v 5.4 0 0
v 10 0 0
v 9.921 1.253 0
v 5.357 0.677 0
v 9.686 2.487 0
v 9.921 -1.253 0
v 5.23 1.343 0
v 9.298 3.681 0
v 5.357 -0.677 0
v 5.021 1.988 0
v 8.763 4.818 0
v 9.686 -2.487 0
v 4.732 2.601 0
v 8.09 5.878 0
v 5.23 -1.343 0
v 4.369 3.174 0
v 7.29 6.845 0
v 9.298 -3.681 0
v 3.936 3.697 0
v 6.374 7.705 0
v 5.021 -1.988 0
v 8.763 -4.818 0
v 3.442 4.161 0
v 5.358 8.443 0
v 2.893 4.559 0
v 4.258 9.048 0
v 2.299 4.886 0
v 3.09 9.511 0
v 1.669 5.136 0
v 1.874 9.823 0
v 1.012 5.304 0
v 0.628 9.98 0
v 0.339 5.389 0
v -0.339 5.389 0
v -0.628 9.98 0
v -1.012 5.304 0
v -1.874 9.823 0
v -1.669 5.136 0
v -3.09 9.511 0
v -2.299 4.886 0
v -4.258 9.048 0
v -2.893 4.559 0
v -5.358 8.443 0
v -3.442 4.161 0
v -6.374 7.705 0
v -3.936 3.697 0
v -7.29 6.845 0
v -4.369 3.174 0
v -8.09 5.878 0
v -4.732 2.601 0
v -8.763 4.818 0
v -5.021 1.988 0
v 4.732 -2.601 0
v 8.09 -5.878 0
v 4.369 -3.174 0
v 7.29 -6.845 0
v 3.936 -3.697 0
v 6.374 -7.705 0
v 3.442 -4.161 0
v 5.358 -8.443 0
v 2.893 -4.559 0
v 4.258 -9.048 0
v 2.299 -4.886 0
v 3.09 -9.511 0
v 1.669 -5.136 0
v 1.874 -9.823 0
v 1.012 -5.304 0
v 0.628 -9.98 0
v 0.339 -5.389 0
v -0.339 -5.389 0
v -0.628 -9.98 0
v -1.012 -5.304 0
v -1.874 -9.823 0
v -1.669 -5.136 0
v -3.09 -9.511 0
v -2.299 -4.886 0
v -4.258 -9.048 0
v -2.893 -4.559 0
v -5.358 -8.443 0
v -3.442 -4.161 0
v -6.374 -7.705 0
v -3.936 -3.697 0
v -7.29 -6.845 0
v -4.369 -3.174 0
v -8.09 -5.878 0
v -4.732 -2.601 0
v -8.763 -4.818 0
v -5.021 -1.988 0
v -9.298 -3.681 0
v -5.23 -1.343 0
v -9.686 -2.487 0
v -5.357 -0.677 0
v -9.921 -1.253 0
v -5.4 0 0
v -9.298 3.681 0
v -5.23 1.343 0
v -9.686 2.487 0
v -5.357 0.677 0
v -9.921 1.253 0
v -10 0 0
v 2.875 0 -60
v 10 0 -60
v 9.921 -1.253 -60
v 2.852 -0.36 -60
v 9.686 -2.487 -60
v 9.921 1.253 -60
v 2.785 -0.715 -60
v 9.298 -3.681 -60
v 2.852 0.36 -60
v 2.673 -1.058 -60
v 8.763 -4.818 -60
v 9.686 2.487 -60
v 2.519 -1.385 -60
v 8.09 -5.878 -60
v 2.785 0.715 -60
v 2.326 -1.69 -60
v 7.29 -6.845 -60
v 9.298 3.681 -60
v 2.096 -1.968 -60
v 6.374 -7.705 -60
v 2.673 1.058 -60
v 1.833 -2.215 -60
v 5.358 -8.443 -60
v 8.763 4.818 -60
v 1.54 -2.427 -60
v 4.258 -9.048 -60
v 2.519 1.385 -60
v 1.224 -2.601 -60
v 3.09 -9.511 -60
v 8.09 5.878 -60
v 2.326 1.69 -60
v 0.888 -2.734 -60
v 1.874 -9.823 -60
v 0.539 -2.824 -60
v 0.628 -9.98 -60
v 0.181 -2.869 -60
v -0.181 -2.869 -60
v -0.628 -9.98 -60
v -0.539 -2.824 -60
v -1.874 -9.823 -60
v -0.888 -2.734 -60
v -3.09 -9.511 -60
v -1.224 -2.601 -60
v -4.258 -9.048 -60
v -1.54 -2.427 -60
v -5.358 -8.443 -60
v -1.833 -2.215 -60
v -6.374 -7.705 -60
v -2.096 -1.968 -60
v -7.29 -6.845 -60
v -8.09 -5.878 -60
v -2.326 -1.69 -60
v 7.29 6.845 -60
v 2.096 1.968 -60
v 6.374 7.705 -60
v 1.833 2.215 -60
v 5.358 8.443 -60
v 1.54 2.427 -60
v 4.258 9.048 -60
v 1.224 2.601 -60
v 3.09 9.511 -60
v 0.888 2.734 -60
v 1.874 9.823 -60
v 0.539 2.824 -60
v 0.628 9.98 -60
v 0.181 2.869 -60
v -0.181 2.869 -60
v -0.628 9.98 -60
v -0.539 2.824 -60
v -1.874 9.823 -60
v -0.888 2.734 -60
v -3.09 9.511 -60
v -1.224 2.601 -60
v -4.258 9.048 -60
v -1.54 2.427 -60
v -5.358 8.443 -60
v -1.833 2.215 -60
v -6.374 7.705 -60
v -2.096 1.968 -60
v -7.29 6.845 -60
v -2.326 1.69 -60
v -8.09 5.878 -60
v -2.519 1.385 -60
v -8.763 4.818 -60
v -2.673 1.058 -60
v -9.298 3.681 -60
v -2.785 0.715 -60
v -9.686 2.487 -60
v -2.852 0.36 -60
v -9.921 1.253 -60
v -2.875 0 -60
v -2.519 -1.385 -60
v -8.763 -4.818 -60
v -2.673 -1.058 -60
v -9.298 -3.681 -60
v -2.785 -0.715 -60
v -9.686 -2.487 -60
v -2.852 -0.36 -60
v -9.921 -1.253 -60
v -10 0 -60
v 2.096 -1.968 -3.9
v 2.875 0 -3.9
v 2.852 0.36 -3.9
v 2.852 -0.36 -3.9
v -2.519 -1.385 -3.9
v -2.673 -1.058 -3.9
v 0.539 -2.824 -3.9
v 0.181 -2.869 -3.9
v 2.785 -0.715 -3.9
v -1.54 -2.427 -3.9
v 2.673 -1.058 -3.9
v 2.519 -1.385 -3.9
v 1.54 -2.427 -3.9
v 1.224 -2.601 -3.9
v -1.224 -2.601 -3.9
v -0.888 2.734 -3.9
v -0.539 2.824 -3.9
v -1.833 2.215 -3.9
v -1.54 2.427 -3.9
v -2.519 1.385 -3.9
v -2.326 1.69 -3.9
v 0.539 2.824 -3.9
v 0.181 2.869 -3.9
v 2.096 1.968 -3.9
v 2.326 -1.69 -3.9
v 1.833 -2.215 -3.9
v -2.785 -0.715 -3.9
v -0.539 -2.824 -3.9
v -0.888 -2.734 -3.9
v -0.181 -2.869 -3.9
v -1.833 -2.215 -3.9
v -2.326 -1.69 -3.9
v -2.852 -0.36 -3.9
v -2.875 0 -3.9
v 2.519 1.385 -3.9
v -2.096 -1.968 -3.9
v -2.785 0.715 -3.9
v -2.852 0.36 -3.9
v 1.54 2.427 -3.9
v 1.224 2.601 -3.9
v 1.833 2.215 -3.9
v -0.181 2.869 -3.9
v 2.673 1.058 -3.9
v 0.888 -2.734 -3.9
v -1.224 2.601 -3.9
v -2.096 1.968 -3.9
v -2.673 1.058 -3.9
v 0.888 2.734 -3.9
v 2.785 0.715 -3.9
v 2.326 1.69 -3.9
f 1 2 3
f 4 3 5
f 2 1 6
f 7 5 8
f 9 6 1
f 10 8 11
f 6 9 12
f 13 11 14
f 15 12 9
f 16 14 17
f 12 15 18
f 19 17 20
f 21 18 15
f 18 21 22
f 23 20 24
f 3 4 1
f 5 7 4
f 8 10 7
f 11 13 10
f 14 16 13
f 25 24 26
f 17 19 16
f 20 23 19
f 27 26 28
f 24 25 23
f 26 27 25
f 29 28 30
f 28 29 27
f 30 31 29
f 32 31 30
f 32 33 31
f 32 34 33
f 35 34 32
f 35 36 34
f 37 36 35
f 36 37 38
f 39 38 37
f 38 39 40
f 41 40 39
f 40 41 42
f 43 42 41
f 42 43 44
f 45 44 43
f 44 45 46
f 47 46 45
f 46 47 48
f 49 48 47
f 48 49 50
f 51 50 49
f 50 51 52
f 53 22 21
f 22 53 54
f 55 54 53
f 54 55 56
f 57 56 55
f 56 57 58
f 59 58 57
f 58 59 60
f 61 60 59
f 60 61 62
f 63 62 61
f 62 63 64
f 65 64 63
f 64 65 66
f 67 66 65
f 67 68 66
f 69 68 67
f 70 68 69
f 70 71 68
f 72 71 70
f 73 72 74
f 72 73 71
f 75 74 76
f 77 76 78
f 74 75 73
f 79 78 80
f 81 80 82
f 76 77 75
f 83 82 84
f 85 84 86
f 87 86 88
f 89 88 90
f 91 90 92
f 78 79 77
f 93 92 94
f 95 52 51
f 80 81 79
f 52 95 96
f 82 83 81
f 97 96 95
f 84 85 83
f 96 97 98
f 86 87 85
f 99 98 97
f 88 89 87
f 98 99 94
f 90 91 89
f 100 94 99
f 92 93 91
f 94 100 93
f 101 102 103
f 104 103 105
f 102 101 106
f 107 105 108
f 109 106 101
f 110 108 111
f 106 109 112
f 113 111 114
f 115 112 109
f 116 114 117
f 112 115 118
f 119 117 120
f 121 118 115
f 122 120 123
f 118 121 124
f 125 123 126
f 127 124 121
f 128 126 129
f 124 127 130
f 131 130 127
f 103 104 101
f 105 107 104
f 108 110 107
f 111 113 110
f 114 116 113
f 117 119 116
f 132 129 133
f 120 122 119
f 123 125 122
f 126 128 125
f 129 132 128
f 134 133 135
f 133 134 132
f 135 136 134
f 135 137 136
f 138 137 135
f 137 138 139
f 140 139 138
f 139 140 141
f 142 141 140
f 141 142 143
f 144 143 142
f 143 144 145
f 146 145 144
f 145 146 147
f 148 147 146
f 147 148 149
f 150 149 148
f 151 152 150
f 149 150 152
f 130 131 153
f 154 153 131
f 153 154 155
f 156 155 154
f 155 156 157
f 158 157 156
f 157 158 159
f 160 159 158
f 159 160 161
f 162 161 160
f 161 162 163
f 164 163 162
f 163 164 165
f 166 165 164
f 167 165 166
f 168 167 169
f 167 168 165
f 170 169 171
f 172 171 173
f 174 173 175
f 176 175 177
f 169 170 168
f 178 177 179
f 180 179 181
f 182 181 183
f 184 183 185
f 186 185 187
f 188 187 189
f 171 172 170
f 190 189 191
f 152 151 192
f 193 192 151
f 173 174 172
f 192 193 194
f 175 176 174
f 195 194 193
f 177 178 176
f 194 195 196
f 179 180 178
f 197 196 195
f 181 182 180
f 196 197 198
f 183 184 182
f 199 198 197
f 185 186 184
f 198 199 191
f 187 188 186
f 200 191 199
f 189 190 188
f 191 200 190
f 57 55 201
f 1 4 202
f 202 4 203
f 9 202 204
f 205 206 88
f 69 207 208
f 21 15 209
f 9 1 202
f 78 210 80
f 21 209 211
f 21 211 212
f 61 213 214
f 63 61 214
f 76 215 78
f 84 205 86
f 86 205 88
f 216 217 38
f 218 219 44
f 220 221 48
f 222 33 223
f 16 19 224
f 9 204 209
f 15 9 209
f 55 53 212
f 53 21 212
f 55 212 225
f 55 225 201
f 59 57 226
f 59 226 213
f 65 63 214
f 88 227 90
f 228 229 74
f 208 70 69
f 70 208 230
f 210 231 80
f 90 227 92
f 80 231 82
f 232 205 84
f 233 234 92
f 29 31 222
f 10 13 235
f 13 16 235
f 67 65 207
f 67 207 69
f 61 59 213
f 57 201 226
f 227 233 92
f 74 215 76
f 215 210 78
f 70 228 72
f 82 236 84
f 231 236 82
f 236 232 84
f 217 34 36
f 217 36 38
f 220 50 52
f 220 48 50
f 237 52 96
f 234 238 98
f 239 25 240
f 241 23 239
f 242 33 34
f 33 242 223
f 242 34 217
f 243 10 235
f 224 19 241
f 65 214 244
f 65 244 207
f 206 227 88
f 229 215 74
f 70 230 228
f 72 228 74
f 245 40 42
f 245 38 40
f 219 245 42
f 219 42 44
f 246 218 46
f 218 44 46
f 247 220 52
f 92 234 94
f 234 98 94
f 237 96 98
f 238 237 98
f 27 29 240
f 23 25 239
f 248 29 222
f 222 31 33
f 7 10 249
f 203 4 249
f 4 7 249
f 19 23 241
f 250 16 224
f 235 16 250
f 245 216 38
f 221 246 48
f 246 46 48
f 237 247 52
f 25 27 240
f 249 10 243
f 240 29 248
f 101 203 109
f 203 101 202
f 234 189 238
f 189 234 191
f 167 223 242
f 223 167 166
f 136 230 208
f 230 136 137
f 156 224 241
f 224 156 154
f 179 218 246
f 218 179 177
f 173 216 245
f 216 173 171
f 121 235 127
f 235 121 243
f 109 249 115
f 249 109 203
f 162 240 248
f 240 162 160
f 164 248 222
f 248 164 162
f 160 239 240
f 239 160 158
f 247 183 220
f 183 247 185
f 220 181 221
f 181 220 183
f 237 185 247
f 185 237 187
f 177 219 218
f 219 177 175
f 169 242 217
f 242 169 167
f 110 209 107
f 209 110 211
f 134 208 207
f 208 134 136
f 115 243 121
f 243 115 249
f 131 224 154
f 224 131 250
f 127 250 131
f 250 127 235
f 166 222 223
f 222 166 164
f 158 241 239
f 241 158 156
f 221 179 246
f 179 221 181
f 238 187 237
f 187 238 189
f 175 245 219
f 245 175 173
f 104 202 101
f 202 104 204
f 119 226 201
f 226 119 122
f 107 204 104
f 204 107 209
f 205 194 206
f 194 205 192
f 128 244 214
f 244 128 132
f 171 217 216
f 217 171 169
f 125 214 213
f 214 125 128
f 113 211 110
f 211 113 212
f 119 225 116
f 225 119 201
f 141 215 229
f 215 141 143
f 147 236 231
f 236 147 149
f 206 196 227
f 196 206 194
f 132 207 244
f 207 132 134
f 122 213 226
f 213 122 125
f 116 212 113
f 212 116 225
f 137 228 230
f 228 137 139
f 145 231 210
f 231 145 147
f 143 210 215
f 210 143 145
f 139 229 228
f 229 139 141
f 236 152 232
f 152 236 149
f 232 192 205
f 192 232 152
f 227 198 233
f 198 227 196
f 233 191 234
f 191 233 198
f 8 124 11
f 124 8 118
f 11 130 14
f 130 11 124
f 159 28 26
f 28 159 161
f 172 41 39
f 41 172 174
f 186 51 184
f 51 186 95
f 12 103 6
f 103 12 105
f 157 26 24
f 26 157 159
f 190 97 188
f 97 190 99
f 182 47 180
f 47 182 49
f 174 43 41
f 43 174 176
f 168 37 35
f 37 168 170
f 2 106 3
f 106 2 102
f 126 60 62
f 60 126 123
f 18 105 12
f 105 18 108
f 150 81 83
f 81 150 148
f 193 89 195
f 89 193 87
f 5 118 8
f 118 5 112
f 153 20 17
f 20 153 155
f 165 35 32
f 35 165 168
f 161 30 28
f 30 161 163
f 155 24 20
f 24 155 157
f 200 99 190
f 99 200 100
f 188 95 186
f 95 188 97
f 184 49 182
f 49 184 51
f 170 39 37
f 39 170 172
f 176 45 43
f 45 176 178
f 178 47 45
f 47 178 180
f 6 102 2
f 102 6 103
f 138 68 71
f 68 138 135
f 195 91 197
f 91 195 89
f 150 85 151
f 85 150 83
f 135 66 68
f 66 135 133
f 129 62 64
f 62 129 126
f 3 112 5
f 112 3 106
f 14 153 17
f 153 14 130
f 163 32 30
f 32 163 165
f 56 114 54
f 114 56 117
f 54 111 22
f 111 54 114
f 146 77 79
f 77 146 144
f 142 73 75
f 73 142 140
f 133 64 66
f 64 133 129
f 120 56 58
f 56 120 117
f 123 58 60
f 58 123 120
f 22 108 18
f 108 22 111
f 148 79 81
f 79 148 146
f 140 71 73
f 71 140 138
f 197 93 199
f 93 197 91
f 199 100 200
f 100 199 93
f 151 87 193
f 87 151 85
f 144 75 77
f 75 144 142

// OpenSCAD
$fn = 50;


difference() {
	union() {
		translate(v = [0, 0, -60.0000000000]) {
			cylinder(h = 60, r = 10.0000000000);
		}
		cylinder(h = 0, r = 19.0000000000);
	}
	union() {
		translate(v = [0, 0, 0]) {
			rotate(a = [0, 0, 0]) {
				difference() {
					union() {
						#translate(v = [0, 0, -60.0000000000]) {
							cylinder(h = 60, r = 2.6000000000);
						}
						#translate(v = [0, 0, -3.9000000000]) {
							cylinder(h = 3.9000000000, r1 = 2.8750000000, r2 = 5.4000000000);
						}
						#translate(v = [0, 0, -60.0000000000]) {
							cylinder(h = 60, r = 2.8750000000);
						}
						#translate(v = [0, 0, -60.0000000000]) {
							cylinder(h = 60, r = 2.6000000000);
						}
					}
					union();
				}
			}
		}
	}
}
